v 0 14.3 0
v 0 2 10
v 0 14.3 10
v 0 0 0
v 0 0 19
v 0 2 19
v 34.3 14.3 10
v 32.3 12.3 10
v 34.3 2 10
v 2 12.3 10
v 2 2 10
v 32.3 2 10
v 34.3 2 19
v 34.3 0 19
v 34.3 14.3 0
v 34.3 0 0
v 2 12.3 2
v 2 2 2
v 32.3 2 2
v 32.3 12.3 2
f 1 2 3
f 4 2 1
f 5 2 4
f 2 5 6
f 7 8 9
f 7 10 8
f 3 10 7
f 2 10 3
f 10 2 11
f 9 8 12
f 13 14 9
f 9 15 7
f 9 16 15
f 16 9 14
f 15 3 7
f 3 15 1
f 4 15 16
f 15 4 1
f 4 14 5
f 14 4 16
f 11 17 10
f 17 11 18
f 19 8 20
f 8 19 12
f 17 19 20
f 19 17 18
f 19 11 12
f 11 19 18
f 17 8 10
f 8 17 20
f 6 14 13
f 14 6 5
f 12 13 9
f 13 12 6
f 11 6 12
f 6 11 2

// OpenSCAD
camera_width = 30.3;
camera_depth = 10.3;
camera_height = 8;
camera_height_extra = 9;

thickness = 2;

difference()
{
    translate([0, 0, 0])
        cube(size = [thickness + camera_width + thickness,
                     thickness + camera_depth + thickness,
                     thickness + camera_height]);
            
    translate([thickness, thickness, thickness])
        cube(size = [camera_width, camera_depth,                    camera_height]);
            
}

translate([0, 0, thickness + camera_height])
    cube(size = [thickness + camera_width + thickness,
            thickness,
            camera_height_extra]);
